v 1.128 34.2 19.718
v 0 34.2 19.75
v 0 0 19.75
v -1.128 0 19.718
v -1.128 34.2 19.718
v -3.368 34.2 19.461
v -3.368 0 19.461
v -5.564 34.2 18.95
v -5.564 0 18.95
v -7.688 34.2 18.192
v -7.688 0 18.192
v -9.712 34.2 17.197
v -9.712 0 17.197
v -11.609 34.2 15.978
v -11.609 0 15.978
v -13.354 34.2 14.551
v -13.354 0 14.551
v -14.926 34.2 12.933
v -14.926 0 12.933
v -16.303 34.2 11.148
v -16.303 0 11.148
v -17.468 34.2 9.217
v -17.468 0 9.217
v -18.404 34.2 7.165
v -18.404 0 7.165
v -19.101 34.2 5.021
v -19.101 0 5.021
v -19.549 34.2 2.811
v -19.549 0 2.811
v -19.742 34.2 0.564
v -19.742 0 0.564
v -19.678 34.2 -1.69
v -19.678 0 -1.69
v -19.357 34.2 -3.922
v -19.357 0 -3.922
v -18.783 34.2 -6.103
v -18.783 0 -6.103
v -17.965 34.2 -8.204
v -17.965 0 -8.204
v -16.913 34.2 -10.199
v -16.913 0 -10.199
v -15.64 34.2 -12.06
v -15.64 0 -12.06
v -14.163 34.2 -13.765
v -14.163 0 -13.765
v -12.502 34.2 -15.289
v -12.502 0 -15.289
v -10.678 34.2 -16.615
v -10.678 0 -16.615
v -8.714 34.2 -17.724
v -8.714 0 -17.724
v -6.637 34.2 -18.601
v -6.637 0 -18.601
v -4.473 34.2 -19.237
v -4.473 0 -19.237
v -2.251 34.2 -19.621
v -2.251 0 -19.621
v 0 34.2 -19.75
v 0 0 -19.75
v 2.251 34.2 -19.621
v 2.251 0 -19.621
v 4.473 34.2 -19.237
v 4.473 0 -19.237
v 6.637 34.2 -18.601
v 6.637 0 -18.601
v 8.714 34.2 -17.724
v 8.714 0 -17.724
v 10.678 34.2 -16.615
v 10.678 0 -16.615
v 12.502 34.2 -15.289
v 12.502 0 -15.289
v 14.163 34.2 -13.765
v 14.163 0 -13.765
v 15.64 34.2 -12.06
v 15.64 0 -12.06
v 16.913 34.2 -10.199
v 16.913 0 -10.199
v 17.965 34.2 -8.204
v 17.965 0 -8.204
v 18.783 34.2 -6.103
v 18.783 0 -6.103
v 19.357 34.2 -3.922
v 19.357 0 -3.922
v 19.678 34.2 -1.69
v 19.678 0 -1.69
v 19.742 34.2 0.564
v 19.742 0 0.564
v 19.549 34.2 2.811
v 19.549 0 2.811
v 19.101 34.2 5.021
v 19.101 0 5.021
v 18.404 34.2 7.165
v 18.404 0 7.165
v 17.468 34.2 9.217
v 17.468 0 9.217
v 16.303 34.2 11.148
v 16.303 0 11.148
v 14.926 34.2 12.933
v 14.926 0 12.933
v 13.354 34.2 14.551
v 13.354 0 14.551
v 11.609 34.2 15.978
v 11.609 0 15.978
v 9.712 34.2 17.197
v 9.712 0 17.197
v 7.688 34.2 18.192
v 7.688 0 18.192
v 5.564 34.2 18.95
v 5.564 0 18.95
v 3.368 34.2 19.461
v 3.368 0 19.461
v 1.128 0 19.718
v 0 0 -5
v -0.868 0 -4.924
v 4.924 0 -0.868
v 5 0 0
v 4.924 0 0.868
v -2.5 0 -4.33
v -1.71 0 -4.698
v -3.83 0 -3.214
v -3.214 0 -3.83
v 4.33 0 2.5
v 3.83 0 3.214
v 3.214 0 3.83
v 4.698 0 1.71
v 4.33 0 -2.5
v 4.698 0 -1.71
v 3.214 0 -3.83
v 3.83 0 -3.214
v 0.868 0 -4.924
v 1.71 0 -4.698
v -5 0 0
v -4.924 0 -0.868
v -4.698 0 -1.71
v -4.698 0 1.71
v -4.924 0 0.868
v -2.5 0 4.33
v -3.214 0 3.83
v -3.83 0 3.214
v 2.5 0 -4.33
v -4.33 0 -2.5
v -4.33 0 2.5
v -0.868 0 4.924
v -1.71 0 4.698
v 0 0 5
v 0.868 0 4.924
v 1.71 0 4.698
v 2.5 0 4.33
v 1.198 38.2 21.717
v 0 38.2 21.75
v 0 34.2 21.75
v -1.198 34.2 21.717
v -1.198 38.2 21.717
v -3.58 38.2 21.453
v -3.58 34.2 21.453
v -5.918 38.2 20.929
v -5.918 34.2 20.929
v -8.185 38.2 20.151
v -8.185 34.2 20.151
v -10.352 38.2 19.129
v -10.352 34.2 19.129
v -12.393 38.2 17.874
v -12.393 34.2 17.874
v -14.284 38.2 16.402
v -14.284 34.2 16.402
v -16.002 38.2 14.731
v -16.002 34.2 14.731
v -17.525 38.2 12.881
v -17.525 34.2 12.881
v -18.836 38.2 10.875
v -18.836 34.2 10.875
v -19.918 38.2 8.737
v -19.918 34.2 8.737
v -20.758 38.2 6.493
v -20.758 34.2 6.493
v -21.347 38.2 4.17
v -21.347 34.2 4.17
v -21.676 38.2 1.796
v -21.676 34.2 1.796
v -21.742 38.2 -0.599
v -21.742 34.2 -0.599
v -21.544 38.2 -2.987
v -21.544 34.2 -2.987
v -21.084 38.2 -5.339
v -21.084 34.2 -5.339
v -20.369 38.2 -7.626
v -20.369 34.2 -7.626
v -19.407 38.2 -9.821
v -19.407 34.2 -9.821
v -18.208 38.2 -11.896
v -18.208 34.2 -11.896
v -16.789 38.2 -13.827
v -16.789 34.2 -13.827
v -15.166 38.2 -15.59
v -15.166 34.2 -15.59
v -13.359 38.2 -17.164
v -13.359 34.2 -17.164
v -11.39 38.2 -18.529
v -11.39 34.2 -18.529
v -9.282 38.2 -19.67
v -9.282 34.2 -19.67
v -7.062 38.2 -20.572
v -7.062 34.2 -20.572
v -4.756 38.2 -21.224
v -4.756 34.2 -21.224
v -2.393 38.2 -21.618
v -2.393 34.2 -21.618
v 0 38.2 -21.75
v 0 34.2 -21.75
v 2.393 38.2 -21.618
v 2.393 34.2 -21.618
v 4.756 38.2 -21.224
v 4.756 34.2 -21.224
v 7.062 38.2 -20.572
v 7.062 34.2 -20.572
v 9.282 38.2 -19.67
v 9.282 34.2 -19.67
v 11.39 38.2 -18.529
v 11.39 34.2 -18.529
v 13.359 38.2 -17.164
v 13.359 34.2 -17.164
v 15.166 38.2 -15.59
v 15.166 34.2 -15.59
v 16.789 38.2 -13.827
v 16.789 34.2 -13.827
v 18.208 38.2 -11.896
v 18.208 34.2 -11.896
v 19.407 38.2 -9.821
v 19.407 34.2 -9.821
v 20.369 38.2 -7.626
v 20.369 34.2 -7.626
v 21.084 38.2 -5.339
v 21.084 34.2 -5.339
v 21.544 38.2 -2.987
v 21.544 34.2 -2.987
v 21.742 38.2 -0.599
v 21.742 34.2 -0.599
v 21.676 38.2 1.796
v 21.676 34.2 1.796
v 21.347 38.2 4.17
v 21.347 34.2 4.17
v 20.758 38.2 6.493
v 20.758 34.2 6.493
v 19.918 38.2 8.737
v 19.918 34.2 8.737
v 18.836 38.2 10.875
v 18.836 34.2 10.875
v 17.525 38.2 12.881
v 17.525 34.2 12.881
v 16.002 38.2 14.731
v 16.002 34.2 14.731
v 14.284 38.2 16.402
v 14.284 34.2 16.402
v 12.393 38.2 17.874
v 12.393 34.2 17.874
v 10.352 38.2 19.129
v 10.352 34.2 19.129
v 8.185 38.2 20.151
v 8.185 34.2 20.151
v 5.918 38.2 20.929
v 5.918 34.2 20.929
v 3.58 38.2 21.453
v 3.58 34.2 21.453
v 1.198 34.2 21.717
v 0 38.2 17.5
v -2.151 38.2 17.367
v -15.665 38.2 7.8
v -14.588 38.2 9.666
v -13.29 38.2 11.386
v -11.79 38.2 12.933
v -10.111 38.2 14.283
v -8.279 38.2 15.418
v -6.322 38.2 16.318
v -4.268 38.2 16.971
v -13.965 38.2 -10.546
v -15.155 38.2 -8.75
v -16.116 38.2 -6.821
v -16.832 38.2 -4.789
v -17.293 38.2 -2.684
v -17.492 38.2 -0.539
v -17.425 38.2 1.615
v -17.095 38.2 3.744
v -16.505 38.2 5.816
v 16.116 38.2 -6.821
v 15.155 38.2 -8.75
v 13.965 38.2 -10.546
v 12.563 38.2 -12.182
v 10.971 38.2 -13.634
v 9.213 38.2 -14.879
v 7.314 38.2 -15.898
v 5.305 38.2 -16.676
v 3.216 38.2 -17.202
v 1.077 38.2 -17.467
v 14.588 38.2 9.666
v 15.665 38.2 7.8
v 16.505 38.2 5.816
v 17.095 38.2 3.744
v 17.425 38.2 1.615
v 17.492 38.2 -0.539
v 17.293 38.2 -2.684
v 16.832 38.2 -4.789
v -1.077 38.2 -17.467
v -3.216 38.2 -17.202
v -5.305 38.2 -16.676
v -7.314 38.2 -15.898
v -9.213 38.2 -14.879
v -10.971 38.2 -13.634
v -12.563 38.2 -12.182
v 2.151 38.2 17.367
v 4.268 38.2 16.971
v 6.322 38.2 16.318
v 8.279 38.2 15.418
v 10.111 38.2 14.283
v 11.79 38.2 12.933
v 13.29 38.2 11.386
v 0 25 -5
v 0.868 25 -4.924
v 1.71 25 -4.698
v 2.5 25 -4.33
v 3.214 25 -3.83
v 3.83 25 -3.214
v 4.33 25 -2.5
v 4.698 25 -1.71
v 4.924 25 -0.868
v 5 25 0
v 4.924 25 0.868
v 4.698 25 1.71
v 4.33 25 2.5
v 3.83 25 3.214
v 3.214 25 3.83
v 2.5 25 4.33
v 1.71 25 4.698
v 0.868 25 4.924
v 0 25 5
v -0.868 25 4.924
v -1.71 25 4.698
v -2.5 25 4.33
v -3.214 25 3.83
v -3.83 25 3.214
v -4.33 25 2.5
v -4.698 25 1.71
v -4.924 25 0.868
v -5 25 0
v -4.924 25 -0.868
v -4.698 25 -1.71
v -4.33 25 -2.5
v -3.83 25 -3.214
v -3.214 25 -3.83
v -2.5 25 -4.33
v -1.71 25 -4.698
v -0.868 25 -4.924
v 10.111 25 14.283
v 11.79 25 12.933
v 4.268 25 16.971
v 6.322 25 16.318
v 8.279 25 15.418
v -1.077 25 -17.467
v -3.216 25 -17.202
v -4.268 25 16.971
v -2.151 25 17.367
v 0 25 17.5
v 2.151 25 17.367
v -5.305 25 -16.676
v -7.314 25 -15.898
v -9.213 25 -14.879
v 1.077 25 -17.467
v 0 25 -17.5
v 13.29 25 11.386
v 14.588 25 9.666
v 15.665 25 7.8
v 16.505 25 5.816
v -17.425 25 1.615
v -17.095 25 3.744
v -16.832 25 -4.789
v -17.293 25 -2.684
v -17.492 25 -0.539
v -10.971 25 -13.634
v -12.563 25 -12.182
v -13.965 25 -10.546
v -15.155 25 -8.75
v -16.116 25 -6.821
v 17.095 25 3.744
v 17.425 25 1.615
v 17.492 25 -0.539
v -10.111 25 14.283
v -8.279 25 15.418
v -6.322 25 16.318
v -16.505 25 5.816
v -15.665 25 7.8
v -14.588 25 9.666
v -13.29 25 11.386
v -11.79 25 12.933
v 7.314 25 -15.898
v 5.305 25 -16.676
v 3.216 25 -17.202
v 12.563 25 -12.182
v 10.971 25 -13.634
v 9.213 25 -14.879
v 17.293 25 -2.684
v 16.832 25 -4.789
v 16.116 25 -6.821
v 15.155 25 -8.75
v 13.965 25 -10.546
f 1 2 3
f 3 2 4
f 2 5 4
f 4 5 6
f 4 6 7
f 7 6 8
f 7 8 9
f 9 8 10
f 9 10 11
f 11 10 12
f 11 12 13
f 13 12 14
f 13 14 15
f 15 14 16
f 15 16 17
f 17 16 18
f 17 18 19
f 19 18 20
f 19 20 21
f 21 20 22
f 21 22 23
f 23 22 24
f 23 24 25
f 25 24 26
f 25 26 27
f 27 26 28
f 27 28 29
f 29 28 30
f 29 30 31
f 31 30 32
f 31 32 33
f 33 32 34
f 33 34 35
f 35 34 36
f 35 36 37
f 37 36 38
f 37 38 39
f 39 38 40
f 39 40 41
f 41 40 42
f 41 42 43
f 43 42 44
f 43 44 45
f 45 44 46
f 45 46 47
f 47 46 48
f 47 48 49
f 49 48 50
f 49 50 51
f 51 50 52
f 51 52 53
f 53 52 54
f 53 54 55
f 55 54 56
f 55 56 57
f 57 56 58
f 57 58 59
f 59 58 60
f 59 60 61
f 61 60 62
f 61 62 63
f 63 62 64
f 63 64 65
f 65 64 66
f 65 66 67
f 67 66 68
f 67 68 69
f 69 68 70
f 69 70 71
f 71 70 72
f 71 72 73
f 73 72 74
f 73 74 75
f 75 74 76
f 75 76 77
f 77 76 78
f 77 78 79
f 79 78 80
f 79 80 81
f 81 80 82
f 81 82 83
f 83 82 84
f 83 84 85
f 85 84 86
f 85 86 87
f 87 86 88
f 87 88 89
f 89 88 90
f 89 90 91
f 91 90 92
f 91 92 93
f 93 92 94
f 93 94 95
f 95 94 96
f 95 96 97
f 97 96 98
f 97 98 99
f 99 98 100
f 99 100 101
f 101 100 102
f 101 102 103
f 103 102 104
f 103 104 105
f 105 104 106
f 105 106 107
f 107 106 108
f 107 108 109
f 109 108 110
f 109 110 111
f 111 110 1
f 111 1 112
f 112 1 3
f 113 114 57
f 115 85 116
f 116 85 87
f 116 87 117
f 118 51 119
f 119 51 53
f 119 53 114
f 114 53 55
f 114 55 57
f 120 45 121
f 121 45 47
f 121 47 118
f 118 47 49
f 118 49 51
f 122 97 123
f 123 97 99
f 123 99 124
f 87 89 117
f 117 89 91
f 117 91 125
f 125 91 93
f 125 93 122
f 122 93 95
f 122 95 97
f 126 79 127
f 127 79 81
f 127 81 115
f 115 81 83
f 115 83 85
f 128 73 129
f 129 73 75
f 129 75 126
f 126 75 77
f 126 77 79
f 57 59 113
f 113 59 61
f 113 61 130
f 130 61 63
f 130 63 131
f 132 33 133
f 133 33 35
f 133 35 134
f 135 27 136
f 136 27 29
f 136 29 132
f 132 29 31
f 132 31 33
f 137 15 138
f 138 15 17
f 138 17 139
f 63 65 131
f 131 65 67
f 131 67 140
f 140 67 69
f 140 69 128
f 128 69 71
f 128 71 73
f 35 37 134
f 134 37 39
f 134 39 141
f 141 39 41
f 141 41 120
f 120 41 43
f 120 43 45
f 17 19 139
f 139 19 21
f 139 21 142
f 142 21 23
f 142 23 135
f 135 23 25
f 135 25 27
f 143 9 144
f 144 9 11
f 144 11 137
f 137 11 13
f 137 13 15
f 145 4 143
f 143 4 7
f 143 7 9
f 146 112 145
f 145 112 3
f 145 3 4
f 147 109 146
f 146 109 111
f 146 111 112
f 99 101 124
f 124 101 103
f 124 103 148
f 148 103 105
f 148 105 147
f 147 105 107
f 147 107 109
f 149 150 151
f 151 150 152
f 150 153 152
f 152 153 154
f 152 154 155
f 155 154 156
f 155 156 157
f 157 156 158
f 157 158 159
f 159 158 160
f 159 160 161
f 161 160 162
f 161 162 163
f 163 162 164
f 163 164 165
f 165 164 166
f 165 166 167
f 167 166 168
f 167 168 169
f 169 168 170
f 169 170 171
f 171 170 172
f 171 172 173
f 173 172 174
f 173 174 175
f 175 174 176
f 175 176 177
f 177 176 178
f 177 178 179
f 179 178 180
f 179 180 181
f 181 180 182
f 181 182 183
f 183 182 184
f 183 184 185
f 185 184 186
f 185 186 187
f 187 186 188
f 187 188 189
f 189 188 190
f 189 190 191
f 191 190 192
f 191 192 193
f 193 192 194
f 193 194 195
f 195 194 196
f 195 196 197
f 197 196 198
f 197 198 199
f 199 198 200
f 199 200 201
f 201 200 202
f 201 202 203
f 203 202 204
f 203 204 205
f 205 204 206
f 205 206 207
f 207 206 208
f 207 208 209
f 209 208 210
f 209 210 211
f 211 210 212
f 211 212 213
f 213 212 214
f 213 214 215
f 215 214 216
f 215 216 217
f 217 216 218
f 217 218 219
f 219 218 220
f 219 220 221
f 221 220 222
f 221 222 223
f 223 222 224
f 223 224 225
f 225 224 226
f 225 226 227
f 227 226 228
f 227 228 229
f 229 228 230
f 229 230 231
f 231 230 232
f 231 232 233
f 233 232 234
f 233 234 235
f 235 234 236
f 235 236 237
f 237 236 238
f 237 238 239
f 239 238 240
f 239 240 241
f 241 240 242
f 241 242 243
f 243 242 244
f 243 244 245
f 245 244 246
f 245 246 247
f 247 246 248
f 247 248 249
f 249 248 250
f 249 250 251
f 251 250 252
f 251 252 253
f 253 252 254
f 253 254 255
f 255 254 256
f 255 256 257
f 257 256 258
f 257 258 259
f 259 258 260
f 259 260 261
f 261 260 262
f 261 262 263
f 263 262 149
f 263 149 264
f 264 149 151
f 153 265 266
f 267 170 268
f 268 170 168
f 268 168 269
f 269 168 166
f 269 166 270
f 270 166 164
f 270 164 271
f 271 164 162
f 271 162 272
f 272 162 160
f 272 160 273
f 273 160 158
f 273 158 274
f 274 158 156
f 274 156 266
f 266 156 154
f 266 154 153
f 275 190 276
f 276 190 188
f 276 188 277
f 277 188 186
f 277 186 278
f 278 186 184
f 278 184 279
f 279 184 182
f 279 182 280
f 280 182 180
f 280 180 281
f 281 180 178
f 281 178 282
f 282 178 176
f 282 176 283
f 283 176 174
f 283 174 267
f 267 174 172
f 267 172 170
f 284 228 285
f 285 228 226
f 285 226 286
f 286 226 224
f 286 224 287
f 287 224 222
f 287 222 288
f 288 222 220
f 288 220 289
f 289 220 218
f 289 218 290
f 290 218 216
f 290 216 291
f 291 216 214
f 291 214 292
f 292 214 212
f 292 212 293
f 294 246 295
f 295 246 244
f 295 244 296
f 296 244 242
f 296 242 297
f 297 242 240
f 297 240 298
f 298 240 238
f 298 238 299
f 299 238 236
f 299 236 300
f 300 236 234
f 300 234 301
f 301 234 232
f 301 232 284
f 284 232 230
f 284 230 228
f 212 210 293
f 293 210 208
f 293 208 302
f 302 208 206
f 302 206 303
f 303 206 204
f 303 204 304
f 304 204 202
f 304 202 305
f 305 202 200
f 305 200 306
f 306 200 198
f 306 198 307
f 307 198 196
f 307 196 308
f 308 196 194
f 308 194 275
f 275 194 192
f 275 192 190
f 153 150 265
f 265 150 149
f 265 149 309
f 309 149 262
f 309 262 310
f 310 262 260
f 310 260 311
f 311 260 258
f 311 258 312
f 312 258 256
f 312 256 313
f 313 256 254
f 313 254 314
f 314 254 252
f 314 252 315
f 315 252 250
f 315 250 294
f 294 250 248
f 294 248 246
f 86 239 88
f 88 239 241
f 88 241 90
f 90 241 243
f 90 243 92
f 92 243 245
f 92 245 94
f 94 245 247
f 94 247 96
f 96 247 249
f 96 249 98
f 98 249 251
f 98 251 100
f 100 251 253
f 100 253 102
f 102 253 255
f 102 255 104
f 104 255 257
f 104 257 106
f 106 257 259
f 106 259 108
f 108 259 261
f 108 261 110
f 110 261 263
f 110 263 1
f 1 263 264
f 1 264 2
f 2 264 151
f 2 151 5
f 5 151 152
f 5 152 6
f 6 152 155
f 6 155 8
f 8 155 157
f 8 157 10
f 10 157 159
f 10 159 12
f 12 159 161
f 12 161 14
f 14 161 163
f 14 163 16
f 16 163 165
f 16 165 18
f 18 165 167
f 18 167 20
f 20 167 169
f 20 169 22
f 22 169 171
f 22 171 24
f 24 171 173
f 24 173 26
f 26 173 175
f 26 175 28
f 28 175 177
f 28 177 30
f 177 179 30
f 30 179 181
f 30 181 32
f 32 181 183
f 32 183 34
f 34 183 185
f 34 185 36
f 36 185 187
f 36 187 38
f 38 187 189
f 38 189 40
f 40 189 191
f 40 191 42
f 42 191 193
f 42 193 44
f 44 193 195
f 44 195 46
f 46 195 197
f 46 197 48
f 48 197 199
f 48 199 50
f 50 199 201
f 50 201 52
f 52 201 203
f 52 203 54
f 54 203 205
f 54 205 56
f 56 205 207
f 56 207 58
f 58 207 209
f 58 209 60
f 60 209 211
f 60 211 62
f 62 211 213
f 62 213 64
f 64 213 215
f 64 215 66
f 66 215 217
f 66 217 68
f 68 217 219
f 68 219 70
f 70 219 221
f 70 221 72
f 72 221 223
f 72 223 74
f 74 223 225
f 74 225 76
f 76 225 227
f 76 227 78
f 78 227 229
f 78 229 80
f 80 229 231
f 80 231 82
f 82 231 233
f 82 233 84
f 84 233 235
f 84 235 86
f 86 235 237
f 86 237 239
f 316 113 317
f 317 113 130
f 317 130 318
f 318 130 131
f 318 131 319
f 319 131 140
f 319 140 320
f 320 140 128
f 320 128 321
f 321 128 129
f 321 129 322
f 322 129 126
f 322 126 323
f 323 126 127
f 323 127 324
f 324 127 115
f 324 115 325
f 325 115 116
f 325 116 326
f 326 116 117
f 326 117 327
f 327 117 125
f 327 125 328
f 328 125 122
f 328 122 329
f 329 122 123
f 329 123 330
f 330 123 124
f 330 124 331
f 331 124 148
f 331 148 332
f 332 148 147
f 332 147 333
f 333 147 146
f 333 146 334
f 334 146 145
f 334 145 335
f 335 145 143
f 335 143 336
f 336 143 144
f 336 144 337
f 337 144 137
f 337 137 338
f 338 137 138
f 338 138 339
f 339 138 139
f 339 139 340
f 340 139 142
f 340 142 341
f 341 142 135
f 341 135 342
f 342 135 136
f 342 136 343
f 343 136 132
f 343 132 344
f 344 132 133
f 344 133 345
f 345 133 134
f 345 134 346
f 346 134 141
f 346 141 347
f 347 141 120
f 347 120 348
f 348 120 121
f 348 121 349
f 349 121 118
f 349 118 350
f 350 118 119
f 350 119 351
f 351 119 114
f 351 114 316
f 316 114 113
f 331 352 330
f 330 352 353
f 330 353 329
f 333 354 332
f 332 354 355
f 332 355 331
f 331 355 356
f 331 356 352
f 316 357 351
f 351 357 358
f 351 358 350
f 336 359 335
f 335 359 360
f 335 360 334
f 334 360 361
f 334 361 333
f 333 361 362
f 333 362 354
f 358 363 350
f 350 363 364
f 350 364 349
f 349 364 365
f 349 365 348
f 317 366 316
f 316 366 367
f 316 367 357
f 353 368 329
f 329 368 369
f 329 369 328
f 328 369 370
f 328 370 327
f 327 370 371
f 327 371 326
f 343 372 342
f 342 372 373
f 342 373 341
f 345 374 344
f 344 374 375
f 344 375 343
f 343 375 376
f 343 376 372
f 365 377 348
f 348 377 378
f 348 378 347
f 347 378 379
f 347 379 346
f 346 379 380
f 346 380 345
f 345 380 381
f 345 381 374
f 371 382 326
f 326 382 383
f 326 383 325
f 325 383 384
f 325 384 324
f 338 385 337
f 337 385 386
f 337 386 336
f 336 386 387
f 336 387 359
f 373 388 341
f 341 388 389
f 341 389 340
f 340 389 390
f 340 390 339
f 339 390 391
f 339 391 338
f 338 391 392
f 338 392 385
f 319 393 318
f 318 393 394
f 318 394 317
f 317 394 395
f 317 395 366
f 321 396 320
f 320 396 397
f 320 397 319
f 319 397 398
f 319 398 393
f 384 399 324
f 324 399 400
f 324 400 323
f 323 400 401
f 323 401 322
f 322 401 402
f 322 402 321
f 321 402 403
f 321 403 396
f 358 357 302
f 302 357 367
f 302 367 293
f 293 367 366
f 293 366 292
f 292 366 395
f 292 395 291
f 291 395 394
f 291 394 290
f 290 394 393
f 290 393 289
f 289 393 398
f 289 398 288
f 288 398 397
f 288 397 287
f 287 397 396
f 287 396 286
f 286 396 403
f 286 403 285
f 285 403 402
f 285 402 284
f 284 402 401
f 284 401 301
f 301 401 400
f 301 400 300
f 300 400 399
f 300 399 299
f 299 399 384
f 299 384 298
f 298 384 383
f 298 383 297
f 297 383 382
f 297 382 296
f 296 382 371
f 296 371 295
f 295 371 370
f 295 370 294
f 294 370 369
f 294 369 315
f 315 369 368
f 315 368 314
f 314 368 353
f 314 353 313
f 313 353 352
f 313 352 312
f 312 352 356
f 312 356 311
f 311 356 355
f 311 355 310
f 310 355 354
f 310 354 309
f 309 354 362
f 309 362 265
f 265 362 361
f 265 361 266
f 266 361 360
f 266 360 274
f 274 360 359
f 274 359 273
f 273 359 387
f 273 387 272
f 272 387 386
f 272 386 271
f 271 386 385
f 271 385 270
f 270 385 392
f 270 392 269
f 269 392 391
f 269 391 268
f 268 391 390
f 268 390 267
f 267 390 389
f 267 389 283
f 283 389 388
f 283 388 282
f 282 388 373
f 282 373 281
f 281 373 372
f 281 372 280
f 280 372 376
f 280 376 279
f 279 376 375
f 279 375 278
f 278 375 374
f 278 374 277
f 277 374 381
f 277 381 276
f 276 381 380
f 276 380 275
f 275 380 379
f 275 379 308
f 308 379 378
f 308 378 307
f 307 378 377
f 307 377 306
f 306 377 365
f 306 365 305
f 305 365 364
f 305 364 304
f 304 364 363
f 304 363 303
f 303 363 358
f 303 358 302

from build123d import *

# Parameters (mm, degrees)
SKETCH_1_R          = 19.75
EXTRUDE_1_DEPTH     = 34.2
SKETCH_2_R          = 21.75
EXTRUDE_2_DEPTH     = 4
SKETCH_3_R          = 5
CUT_EXTRUDE_1_DEPTH = 25
SKETCH_4_R          = 17.5
CUT_EXTRUDE_3_DEPTH = 13.2


with BuildPart() as part:
    # 草图1 → 凸台-拉伸1 (new body)
    with BuildSketch(Plane(origin=(0, 0, 0), x_dir=(1, 0, 0), z_dir=(0, 1, 0))):
        with Locations(Location((0, 0, 0), (0, 0, 270))):
            Circle(SKETCH_1_R)
    extrude(amount=EXTRUDE_1_DEPTH)

    # 草图2 → 凸台-拉伸2 (add)
    with BuildSketch(Plane(origin=(0, 34.2, 0), x_dir=(1, 0, 0), z_dir=(0, 1, 0))):
        with Locations(Location((0, 0, 0), (0, 0, 270))):
            Circle(SKETCH_2_R)
    extrude(amount=EXTRUDE_2_DEPTH)

    # 草图3 → 切除-拉伸1 (cut)
    with BuildSketch(Plane.XZ):
        with Locations(Location((0, 0, 0), (0, 0, 270))):
            Circle(SKETCH_3_R)
    extrude(amount=-CUT_EXTRUDE_1_DEPTH, mode=Mode.SUBTRACT)

    # 草图4 → 切除-拉伸3 (cut)
    with BuildSketch(Plane(origin=(0, 38.2, 0), x_dir=(1, 0, 0), z_dir=(0, 1, 0))):
        with Locations(Location((0, 0, 0), (0, 0, 270))):
            Circle(SKETCH_4_R)
    extrude(amount=-CUT_EXTRUDE_3_DEPTH, mode=Mode.SUBTRACT)


solid = part.part
